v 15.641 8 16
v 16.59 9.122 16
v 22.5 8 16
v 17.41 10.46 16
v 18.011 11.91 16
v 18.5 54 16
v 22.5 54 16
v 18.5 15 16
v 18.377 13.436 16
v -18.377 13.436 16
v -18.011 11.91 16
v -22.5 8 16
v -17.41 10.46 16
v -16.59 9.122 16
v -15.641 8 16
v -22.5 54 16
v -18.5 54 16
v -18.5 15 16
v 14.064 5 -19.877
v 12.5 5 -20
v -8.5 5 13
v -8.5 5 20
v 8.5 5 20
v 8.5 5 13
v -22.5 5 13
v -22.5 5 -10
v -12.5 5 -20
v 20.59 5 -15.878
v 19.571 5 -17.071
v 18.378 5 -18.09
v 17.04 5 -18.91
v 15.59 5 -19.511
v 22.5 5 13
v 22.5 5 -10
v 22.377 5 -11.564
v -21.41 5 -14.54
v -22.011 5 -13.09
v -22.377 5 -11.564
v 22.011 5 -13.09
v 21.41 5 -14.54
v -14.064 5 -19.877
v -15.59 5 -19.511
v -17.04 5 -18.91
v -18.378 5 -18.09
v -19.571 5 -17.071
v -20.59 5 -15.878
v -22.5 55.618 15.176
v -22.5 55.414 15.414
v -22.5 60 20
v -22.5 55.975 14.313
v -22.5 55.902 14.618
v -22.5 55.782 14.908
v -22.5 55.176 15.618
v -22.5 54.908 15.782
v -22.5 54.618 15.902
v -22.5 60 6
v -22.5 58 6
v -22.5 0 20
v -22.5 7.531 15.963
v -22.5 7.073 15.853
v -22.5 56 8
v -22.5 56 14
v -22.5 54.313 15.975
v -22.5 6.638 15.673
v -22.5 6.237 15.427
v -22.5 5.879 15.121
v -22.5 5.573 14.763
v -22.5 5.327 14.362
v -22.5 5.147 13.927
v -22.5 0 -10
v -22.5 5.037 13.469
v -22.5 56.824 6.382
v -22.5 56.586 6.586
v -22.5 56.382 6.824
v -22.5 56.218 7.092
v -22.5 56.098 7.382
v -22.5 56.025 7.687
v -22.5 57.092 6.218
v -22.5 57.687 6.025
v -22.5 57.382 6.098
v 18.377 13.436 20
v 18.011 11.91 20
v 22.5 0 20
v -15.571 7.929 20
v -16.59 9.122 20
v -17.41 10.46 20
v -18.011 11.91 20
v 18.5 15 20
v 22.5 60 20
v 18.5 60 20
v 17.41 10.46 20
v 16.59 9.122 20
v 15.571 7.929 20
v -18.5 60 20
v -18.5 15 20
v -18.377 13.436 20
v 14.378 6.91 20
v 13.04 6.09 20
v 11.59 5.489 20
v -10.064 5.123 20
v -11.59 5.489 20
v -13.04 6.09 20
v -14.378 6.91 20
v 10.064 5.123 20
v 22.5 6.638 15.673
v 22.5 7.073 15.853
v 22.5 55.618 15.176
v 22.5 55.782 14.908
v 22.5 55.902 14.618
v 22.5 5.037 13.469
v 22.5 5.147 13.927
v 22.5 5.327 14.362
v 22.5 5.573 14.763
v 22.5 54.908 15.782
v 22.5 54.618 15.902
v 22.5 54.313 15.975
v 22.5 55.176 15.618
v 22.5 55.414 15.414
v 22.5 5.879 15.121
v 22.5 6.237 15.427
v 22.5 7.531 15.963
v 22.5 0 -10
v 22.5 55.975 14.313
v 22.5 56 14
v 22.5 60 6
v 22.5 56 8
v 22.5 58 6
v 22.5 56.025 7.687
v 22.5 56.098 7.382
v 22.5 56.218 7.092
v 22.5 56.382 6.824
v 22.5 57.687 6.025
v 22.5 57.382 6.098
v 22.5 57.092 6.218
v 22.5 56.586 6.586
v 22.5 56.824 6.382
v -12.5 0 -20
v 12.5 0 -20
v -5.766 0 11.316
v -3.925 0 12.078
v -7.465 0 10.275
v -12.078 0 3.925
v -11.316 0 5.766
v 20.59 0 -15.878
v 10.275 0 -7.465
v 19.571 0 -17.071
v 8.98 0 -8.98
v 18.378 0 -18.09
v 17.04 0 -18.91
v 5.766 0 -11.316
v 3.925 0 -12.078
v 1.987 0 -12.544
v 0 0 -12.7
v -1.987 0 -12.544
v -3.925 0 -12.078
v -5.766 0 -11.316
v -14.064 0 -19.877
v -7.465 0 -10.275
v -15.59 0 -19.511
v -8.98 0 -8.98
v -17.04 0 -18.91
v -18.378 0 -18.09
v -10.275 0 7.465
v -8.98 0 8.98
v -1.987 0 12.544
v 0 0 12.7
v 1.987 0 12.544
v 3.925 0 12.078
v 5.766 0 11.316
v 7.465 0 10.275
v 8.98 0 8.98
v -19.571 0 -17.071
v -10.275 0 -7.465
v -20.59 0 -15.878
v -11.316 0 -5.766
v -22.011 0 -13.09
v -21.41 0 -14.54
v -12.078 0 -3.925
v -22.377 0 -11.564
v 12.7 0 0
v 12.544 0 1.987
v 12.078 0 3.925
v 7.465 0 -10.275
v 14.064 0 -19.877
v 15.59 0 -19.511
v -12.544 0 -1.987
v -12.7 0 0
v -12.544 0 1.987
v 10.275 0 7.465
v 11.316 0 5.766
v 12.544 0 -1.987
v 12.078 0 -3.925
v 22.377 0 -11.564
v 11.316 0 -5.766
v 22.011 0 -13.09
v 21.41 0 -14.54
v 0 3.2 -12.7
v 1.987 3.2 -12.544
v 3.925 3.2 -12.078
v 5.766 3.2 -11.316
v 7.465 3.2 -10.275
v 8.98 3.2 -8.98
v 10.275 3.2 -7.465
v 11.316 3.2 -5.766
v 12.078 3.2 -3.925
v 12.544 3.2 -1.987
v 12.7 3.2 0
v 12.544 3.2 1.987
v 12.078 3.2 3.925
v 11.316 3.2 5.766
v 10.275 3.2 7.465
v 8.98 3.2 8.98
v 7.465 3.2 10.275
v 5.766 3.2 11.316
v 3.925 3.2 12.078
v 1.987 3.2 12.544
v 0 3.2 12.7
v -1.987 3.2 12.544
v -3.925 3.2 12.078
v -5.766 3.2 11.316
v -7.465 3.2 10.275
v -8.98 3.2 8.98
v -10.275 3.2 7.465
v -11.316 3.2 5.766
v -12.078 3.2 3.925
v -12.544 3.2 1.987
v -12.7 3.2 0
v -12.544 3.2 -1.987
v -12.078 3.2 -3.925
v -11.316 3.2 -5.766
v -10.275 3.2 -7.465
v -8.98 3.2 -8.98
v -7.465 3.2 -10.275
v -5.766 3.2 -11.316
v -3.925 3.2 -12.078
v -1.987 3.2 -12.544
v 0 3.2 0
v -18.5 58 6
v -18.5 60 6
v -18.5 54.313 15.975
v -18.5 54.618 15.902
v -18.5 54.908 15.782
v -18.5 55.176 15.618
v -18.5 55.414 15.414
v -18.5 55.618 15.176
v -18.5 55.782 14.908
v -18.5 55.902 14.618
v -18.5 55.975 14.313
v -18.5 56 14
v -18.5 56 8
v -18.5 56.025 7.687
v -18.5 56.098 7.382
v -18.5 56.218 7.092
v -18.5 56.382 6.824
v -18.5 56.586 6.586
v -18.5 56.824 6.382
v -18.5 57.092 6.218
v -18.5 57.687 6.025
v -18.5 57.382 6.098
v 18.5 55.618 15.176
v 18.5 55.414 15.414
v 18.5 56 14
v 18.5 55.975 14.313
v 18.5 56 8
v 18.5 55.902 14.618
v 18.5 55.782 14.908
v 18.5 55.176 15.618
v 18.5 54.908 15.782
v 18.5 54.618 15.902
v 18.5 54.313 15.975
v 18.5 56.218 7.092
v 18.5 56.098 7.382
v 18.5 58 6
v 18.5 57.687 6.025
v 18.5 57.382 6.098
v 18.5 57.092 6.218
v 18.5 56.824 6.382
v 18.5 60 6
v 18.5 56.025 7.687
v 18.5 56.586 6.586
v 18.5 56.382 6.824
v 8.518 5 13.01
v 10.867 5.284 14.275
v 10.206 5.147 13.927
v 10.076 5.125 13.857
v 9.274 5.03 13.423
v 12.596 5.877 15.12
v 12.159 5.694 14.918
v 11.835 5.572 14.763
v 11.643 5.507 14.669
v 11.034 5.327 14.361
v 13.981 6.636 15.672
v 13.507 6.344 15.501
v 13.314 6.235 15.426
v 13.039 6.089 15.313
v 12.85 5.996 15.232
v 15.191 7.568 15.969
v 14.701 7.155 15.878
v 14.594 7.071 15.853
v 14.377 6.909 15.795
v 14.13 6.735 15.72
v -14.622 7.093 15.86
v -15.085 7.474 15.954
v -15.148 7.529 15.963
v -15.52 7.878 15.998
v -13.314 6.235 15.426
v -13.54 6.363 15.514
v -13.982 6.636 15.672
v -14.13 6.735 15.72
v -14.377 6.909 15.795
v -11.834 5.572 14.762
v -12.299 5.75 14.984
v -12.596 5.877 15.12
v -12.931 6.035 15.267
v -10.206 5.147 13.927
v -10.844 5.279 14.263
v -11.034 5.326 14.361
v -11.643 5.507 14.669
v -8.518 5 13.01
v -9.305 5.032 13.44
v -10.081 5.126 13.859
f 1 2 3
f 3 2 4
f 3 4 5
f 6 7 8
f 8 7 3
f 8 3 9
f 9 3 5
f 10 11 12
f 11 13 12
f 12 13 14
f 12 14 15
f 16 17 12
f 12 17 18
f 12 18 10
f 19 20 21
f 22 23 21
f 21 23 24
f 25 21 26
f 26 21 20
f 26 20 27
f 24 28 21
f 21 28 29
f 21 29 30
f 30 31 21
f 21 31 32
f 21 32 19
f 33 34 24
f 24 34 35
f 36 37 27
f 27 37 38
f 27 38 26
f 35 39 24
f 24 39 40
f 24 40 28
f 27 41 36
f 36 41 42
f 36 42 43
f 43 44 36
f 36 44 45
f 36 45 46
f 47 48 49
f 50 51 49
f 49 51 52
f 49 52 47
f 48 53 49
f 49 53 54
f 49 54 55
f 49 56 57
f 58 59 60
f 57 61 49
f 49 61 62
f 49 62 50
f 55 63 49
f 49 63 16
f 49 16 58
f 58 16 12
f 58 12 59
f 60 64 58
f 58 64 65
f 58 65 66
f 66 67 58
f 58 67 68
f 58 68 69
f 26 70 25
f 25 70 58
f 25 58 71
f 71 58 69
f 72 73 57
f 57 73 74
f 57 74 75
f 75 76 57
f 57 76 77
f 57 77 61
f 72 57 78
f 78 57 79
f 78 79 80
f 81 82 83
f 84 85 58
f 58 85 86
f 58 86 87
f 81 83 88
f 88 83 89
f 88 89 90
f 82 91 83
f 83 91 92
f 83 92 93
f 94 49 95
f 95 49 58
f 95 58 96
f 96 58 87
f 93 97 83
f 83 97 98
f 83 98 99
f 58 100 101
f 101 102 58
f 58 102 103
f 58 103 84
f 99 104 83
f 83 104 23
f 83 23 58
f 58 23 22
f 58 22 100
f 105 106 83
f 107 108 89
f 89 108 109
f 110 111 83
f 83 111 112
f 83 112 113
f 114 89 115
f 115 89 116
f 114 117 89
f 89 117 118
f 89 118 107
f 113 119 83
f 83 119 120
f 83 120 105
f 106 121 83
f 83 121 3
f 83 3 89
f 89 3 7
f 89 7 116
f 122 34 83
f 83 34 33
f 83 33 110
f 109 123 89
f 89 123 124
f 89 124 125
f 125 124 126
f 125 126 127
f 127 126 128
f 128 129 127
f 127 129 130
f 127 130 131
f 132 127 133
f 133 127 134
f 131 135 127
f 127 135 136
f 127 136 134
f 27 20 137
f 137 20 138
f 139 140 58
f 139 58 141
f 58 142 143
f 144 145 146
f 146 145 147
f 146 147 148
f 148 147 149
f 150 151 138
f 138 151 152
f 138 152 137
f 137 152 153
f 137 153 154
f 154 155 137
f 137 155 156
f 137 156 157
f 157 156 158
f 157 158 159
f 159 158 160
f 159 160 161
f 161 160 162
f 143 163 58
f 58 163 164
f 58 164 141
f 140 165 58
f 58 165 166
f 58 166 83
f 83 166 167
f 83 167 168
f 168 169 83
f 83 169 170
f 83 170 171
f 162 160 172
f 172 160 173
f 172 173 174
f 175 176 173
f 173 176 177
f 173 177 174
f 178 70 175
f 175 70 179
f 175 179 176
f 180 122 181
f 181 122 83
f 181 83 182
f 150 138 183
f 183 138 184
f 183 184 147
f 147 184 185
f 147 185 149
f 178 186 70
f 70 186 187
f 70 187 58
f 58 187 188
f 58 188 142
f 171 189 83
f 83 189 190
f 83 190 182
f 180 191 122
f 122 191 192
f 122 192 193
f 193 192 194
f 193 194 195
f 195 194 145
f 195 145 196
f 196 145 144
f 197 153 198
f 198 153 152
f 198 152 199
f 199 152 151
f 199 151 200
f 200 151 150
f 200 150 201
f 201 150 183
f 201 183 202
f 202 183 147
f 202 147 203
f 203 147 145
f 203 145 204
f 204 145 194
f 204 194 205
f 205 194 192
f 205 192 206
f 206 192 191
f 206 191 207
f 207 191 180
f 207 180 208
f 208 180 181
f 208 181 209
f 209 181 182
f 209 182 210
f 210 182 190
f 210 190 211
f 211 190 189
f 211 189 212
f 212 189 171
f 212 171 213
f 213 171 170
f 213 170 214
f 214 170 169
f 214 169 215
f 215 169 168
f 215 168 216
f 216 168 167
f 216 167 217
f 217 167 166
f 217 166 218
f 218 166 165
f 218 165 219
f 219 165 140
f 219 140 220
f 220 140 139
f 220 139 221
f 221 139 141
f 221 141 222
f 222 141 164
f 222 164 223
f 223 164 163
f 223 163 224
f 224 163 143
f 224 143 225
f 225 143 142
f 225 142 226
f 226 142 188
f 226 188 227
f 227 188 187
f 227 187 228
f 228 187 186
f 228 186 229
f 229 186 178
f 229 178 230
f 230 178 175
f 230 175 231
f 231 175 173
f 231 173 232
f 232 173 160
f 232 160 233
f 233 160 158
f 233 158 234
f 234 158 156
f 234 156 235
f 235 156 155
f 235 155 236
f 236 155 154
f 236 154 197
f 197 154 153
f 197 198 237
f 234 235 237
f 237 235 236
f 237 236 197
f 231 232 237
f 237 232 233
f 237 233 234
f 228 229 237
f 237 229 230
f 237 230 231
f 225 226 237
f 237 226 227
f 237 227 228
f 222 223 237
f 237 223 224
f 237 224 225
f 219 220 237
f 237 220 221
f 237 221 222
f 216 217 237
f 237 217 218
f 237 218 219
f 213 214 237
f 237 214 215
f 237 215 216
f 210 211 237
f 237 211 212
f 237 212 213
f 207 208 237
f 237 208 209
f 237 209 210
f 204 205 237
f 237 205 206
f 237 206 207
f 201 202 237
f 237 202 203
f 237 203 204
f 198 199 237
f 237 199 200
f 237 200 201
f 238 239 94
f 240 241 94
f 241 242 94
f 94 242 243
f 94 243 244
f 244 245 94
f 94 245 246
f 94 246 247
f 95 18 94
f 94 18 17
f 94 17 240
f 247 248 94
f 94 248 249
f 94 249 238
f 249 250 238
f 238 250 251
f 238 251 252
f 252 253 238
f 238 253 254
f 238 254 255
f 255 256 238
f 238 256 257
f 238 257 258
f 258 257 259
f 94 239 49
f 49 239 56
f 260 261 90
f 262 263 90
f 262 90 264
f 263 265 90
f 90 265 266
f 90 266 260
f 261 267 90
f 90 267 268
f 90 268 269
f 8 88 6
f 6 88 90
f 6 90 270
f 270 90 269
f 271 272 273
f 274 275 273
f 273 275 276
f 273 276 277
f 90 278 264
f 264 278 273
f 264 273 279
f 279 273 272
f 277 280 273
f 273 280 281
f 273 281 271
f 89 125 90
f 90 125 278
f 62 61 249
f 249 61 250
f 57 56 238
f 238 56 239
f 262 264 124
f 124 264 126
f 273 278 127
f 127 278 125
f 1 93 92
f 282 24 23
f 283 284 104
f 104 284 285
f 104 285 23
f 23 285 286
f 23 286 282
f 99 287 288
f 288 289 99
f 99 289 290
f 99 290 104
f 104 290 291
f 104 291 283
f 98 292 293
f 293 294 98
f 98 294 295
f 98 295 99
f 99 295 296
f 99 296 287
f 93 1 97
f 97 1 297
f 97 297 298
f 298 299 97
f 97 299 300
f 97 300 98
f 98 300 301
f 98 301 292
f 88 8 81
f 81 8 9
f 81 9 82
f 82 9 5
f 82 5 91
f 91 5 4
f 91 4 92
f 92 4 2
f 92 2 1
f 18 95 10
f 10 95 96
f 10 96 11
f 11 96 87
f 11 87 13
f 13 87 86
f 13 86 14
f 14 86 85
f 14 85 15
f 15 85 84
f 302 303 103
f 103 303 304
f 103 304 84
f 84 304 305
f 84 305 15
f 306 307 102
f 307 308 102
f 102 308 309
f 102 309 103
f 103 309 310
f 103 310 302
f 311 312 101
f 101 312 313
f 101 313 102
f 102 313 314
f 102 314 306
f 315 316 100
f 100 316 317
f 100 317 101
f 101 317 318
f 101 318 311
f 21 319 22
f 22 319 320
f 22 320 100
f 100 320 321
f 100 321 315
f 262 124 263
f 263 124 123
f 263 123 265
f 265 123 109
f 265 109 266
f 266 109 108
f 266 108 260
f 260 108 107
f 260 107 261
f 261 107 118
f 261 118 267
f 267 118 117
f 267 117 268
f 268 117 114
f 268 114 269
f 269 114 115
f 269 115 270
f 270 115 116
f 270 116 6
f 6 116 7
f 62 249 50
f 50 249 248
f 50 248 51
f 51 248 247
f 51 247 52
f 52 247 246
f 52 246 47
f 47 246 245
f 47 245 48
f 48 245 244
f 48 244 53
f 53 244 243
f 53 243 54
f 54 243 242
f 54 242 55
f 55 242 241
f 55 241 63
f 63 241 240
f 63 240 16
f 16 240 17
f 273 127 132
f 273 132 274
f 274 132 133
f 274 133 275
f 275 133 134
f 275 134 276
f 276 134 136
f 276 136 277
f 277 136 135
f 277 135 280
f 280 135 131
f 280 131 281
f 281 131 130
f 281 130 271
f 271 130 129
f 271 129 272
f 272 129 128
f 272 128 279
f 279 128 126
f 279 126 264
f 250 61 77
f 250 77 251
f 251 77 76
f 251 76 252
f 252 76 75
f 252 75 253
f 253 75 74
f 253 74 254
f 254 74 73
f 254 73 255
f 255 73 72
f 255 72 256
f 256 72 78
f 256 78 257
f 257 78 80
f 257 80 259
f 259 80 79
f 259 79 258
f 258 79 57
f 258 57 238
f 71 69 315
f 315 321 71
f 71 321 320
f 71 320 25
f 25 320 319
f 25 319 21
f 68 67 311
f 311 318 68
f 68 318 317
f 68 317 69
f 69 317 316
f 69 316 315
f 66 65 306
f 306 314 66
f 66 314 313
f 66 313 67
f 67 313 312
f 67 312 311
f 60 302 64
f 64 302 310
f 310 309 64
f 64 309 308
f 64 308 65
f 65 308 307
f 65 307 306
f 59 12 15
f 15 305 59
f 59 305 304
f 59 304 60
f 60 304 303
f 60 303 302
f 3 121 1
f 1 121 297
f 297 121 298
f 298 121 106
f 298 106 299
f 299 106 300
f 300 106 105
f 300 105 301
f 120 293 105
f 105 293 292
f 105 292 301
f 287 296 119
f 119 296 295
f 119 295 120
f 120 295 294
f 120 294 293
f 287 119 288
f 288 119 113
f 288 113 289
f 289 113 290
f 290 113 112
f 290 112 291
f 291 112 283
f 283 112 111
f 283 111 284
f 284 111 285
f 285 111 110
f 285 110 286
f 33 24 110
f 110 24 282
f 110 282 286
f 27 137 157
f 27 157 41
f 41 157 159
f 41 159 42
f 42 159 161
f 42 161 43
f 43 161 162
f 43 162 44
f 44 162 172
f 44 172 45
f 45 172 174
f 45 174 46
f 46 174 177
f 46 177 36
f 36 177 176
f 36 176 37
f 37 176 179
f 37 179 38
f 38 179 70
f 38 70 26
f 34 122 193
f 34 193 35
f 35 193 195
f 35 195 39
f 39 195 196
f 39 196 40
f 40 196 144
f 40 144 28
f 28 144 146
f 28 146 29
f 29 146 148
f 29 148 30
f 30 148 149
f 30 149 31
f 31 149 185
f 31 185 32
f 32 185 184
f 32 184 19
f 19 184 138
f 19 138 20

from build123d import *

# Parameters (mm, degrees)
SKETCH1_W           = 45
SKETCH1_H           = 40
BOSS_EXTRUDE1_DEPTH = 5
SKETCH2_R           = 12.7
CUT_EXTRUDE1_DEPTH  = 3.2
SKETCH3_W           = 4
SKETCH3_H           = 4
BOSS_EXTRUDE2_DEPTH = 55
SKETCH4_W           = 4
SKETCH4_H           = 4
BOSS_EXTRUDE3_DEPTH = 10
FILLET1_R           = 10
FILLET2_R           = 2
FILLET3_R           = 3
FILLET4_R           = 10


with BuildPart() as part:
    # Sketch1 → Boss-Extrude1 (new body)
    with BuildSketch(Plane(origin=(0, 0, 0), x_dir=(1, 0, 0), z_dir=(0, 1, 0))):
        Rectangle(SKETCH1_W, SKETCH1_H)
    extrude(amount=BOSS_EXTRUDE1_DEPTH)

    # Sketch2 → Cut-Extrude1 (cut)
    with BuildSketch(Plane(origin=(0, 0, 0), x_dir=(-1, 0, 0), z_dir=(0, -1, 0))):
        with Locations(Location((0, 0, 0), (0, 0, 90))):
            Circle(SKETCH2_R)
    extrude(amount=-CUT_EXTRUDE1_DEPTH, mode=Mode.SUBTRACT)

    # Sketch3 → Boss-Extrude2 (add)
    with BuildSketch(Plane(origin=(0, 5, 0), x_dir=(1, 0, 0), z_dir=(0, 1, 0))):
        with Locations((-20.5, -18)):
            Rectangle(SKETCH3_W, SKETCH3_H)
        with Locations((20.5, -18)):
            Rectangle(SKETCH3_W, SKETCH3_H)
    extrude(amount=BOSS_EXTRUDE2_DEPTH)

    # Sketch4 → Boss-Extrude3 (add)
    with BuildSketch(Plane(origin=(0, 0, 16), x_dir=(-1, 0, 0), z_dir=(0, 0, -1))):
        with Locations((20.5, 58)):
            Rectangle(SKETCH4_W, SKETCH4_H)
        with Locations((-20.5, 58)):
            Rectangle(SKETCH4_W, SKETCH4_H)
    extrude(amount=BOSS_EXTRUDE3_DEPTH)

    # Fillet1
    fillet1_edges = [part.edges().sort_by_distance(p)[0] for p in [
        (-18.5, 5, 18),
        (18.5, 5, 18),
    ]]
    fillet(fillet1_edges, radius=FILLET1_R)

    # Fillet2
    fillet2_edges = [part.edges().sort_by_distance(p)[0] for p in [
        (-20.5, 56, 16),
        (-20.5, 56, 6),
        (20.5, 56, 16),
        (20.5, 56, 6),
    ]]
    fillet(fillet2_edges, radius=FILLET2_R)

    # Fillet3
    fillet3_edges = [part.edges().sort_by_distance(p)[0] for p in [
        (-15.5, 5, 16),
        (15.5, 5, 16),
    ]]
    fillet(fillet3_edges, radius=FILLET3_R)

    # Fillet4
    fillet4_edges = [part.edges().sort_by_distance(p)[0] for p in [
        (-22.5, 2.5, -20),
        (22.5, 2.5, -20),
    ]]
    fillet(fillet4_edges, radius=FILLET4_R)


solid = part.part
